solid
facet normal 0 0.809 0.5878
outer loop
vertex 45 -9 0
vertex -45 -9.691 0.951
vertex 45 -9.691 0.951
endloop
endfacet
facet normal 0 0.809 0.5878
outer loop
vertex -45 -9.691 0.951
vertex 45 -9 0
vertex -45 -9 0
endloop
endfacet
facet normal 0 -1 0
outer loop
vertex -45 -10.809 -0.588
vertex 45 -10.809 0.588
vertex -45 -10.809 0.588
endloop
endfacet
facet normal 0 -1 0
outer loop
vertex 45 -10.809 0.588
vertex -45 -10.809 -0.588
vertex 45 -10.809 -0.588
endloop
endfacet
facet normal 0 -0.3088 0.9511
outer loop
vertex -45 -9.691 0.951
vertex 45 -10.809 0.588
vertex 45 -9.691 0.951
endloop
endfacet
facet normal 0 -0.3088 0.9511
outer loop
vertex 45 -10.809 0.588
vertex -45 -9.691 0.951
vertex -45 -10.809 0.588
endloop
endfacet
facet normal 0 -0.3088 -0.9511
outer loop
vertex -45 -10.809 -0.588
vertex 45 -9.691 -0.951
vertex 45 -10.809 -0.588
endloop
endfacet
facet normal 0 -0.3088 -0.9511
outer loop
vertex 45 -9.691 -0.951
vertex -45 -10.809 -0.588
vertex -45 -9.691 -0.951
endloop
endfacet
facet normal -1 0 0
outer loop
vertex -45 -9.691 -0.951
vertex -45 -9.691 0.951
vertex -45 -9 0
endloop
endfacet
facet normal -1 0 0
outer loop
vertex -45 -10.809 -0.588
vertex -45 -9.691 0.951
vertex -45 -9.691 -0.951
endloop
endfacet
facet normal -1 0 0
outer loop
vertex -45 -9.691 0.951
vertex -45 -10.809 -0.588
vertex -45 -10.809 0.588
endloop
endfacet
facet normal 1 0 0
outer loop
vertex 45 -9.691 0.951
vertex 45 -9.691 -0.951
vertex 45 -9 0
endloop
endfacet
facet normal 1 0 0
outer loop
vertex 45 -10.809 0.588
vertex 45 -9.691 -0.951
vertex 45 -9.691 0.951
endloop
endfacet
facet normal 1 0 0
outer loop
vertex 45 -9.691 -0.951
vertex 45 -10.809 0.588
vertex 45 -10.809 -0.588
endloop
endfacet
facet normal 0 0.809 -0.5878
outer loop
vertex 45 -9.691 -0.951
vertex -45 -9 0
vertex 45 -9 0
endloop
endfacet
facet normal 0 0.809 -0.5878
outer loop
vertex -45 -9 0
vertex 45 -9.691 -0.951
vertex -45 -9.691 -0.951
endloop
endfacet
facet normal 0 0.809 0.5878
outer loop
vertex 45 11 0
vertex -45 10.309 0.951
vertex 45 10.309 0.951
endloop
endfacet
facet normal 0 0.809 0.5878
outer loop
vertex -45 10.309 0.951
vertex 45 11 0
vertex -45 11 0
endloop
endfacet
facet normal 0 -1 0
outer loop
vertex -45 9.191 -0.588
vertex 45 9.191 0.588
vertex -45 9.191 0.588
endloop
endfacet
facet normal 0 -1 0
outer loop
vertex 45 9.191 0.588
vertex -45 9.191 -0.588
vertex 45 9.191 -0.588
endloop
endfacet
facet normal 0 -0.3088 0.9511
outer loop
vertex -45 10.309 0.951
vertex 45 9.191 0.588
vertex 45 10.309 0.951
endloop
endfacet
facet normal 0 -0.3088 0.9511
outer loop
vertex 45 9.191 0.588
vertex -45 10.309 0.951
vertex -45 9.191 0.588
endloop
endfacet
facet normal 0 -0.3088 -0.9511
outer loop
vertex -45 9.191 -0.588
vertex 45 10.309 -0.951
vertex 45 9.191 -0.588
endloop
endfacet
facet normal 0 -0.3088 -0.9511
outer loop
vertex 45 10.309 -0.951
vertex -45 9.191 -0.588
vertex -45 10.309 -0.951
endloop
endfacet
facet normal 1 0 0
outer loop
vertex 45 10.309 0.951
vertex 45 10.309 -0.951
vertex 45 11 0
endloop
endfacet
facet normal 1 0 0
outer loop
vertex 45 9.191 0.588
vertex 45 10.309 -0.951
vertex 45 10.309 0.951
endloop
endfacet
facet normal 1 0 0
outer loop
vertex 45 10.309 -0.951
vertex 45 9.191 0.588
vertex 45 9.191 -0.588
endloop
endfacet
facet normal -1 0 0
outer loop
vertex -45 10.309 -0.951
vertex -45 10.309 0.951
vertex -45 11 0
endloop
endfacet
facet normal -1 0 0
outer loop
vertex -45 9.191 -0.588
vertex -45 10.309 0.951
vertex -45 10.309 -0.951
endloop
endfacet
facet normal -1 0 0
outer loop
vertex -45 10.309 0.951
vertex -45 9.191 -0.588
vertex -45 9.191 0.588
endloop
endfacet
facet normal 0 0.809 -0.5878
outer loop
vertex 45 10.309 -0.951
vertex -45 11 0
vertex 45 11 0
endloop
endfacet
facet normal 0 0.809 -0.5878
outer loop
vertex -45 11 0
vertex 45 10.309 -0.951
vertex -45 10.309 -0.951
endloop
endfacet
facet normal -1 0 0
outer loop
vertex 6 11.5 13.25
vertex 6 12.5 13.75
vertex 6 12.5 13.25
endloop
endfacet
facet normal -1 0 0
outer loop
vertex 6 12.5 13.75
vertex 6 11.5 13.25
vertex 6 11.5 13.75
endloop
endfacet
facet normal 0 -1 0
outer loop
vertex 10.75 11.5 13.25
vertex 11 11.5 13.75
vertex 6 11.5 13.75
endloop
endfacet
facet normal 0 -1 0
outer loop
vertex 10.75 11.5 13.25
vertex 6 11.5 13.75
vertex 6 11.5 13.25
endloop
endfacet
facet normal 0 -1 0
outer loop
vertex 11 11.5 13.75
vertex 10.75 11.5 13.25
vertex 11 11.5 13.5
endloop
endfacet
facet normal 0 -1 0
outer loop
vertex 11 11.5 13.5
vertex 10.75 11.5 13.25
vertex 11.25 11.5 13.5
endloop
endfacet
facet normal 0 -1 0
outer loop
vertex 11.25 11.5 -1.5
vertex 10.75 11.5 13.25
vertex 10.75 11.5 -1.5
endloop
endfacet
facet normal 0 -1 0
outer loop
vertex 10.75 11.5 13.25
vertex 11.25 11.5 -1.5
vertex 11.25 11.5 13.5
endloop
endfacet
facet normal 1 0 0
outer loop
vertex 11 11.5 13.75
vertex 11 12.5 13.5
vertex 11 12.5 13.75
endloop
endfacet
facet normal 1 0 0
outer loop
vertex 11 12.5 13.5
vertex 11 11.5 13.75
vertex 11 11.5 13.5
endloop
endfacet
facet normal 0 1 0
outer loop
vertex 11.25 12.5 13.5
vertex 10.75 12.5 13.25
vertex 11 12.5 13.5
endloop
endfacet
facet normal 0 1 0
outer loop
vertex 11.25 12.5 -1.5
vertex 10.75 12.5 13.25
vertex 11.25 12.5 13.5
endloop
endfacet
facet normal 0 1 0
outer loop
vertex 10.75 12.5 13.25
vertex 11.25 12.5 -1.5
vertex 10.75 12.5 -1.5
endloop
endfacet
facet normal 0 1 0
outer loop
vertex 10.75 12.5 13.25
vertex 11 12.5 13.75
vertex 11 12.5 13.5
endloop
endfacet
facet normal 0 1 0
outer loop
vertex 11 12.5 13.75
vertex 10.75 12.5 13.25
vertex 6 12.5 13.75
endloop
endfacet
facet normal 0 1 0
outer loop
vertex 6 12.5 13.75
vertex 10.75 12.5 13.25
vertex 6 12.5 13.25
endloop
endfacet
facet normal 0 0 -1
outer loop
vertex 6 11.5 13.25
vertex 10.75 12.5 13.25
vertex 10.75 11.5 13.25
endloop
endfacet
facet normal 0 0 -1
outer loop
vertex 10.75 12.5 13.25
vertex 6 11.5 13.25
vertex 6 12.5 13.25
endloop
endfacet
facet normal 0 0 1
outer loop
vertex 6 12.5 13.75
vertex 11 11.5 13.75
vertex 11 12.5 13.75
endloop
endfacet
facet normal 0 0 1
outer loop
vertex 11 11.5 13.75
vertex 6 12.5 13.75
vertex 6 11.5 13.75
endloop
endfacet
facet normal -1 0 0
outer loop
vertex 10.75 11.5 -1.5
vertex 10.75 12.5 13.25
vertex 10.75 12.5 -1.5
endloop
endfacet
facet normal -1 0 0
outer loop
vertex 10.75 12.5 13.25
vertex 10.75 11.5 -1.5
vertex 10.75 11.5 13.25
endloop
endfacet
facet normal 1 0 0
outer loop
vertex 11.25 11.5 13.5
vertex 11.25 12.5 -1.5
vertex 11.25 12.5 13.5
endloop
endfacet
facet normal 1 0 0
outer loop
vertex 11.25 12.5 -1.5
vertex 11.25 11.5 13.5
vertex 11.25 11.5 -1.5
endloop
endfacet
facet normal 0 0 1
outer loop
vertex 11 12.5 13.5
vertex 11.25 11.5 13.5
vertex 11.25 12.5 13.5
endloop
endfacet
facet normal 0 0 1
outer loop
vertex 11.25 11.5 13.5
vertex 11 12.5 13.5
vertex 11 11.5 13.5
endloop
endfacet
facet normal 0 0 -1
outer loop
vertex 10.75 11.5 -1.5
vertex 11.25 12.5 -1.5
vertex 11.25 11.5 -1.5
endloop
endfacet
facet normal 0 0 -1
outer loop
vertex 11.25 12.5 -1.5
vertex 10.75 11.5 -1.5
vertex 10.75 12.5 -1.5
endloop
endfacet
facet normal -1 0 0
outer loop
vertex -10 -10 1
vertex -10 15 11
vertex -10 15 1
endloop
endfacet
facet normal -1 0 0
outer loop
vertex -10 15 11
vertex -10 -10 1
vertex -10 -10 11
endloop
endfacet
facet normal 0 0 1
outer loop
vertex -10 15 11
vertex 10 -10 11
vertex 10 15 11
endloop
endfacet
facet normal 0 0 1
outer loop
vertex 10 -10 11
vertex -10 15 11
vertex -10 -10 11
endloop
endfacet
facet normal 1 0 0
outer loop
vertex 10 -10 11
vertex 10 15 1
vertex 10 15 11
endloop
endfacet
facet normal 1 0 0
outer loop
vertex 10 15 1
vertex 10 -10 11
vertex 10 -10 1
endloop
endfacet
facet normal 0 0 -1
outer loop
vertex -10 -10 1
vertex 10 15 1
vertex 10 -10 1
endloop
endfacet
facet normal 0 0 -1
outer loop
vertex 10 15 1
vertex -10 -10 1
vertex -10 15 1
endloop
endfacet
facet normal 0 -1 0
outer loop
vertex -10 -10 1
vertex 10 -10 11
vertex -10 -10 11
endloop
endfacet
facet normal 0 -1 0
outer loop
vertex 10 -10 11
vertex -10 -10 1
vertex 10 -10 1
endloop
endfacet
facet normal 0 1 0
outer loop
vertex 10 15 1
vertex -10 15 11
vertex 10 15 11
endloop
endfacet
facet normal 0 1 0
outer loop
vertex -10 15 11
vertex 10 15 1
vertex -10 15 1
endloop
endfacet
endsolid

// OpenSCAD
// file: common.scad
module parralel_poles() {
    rotate(90, [0, 0, 1]) {
        rotate(90, [1, 0, 0]) {
            for(width = [-10, 10]) {
                translate([width, 0, 0]) {
                    cylinder(h=90, r1=1, r2=1, center=true);
                }
            }
        }
    }
}
module label() {
    translate([-45, 15, 0]) {
        text(text="BACK", size=5);
    }
    translate([-45, -20, 0]) {
        text(text="FRONT", size=5);
    }
}

module box() {
  translate([0, 2.5, 6]) {
      cube([20,25,10], center=true);
  }
}
// main file
include <common.scad>

parralel_poles();
label();

translate([11, 12, 6]) {
    rotate(90, [1, 0, 0]) {
        translate([-2.5, 7.5, 0]) {
            cube([5, 0.5, 1], center=true);
        }
        cube([0.5, 15, 1], center=true);
        text("←", size=8);
    }
}

box();
